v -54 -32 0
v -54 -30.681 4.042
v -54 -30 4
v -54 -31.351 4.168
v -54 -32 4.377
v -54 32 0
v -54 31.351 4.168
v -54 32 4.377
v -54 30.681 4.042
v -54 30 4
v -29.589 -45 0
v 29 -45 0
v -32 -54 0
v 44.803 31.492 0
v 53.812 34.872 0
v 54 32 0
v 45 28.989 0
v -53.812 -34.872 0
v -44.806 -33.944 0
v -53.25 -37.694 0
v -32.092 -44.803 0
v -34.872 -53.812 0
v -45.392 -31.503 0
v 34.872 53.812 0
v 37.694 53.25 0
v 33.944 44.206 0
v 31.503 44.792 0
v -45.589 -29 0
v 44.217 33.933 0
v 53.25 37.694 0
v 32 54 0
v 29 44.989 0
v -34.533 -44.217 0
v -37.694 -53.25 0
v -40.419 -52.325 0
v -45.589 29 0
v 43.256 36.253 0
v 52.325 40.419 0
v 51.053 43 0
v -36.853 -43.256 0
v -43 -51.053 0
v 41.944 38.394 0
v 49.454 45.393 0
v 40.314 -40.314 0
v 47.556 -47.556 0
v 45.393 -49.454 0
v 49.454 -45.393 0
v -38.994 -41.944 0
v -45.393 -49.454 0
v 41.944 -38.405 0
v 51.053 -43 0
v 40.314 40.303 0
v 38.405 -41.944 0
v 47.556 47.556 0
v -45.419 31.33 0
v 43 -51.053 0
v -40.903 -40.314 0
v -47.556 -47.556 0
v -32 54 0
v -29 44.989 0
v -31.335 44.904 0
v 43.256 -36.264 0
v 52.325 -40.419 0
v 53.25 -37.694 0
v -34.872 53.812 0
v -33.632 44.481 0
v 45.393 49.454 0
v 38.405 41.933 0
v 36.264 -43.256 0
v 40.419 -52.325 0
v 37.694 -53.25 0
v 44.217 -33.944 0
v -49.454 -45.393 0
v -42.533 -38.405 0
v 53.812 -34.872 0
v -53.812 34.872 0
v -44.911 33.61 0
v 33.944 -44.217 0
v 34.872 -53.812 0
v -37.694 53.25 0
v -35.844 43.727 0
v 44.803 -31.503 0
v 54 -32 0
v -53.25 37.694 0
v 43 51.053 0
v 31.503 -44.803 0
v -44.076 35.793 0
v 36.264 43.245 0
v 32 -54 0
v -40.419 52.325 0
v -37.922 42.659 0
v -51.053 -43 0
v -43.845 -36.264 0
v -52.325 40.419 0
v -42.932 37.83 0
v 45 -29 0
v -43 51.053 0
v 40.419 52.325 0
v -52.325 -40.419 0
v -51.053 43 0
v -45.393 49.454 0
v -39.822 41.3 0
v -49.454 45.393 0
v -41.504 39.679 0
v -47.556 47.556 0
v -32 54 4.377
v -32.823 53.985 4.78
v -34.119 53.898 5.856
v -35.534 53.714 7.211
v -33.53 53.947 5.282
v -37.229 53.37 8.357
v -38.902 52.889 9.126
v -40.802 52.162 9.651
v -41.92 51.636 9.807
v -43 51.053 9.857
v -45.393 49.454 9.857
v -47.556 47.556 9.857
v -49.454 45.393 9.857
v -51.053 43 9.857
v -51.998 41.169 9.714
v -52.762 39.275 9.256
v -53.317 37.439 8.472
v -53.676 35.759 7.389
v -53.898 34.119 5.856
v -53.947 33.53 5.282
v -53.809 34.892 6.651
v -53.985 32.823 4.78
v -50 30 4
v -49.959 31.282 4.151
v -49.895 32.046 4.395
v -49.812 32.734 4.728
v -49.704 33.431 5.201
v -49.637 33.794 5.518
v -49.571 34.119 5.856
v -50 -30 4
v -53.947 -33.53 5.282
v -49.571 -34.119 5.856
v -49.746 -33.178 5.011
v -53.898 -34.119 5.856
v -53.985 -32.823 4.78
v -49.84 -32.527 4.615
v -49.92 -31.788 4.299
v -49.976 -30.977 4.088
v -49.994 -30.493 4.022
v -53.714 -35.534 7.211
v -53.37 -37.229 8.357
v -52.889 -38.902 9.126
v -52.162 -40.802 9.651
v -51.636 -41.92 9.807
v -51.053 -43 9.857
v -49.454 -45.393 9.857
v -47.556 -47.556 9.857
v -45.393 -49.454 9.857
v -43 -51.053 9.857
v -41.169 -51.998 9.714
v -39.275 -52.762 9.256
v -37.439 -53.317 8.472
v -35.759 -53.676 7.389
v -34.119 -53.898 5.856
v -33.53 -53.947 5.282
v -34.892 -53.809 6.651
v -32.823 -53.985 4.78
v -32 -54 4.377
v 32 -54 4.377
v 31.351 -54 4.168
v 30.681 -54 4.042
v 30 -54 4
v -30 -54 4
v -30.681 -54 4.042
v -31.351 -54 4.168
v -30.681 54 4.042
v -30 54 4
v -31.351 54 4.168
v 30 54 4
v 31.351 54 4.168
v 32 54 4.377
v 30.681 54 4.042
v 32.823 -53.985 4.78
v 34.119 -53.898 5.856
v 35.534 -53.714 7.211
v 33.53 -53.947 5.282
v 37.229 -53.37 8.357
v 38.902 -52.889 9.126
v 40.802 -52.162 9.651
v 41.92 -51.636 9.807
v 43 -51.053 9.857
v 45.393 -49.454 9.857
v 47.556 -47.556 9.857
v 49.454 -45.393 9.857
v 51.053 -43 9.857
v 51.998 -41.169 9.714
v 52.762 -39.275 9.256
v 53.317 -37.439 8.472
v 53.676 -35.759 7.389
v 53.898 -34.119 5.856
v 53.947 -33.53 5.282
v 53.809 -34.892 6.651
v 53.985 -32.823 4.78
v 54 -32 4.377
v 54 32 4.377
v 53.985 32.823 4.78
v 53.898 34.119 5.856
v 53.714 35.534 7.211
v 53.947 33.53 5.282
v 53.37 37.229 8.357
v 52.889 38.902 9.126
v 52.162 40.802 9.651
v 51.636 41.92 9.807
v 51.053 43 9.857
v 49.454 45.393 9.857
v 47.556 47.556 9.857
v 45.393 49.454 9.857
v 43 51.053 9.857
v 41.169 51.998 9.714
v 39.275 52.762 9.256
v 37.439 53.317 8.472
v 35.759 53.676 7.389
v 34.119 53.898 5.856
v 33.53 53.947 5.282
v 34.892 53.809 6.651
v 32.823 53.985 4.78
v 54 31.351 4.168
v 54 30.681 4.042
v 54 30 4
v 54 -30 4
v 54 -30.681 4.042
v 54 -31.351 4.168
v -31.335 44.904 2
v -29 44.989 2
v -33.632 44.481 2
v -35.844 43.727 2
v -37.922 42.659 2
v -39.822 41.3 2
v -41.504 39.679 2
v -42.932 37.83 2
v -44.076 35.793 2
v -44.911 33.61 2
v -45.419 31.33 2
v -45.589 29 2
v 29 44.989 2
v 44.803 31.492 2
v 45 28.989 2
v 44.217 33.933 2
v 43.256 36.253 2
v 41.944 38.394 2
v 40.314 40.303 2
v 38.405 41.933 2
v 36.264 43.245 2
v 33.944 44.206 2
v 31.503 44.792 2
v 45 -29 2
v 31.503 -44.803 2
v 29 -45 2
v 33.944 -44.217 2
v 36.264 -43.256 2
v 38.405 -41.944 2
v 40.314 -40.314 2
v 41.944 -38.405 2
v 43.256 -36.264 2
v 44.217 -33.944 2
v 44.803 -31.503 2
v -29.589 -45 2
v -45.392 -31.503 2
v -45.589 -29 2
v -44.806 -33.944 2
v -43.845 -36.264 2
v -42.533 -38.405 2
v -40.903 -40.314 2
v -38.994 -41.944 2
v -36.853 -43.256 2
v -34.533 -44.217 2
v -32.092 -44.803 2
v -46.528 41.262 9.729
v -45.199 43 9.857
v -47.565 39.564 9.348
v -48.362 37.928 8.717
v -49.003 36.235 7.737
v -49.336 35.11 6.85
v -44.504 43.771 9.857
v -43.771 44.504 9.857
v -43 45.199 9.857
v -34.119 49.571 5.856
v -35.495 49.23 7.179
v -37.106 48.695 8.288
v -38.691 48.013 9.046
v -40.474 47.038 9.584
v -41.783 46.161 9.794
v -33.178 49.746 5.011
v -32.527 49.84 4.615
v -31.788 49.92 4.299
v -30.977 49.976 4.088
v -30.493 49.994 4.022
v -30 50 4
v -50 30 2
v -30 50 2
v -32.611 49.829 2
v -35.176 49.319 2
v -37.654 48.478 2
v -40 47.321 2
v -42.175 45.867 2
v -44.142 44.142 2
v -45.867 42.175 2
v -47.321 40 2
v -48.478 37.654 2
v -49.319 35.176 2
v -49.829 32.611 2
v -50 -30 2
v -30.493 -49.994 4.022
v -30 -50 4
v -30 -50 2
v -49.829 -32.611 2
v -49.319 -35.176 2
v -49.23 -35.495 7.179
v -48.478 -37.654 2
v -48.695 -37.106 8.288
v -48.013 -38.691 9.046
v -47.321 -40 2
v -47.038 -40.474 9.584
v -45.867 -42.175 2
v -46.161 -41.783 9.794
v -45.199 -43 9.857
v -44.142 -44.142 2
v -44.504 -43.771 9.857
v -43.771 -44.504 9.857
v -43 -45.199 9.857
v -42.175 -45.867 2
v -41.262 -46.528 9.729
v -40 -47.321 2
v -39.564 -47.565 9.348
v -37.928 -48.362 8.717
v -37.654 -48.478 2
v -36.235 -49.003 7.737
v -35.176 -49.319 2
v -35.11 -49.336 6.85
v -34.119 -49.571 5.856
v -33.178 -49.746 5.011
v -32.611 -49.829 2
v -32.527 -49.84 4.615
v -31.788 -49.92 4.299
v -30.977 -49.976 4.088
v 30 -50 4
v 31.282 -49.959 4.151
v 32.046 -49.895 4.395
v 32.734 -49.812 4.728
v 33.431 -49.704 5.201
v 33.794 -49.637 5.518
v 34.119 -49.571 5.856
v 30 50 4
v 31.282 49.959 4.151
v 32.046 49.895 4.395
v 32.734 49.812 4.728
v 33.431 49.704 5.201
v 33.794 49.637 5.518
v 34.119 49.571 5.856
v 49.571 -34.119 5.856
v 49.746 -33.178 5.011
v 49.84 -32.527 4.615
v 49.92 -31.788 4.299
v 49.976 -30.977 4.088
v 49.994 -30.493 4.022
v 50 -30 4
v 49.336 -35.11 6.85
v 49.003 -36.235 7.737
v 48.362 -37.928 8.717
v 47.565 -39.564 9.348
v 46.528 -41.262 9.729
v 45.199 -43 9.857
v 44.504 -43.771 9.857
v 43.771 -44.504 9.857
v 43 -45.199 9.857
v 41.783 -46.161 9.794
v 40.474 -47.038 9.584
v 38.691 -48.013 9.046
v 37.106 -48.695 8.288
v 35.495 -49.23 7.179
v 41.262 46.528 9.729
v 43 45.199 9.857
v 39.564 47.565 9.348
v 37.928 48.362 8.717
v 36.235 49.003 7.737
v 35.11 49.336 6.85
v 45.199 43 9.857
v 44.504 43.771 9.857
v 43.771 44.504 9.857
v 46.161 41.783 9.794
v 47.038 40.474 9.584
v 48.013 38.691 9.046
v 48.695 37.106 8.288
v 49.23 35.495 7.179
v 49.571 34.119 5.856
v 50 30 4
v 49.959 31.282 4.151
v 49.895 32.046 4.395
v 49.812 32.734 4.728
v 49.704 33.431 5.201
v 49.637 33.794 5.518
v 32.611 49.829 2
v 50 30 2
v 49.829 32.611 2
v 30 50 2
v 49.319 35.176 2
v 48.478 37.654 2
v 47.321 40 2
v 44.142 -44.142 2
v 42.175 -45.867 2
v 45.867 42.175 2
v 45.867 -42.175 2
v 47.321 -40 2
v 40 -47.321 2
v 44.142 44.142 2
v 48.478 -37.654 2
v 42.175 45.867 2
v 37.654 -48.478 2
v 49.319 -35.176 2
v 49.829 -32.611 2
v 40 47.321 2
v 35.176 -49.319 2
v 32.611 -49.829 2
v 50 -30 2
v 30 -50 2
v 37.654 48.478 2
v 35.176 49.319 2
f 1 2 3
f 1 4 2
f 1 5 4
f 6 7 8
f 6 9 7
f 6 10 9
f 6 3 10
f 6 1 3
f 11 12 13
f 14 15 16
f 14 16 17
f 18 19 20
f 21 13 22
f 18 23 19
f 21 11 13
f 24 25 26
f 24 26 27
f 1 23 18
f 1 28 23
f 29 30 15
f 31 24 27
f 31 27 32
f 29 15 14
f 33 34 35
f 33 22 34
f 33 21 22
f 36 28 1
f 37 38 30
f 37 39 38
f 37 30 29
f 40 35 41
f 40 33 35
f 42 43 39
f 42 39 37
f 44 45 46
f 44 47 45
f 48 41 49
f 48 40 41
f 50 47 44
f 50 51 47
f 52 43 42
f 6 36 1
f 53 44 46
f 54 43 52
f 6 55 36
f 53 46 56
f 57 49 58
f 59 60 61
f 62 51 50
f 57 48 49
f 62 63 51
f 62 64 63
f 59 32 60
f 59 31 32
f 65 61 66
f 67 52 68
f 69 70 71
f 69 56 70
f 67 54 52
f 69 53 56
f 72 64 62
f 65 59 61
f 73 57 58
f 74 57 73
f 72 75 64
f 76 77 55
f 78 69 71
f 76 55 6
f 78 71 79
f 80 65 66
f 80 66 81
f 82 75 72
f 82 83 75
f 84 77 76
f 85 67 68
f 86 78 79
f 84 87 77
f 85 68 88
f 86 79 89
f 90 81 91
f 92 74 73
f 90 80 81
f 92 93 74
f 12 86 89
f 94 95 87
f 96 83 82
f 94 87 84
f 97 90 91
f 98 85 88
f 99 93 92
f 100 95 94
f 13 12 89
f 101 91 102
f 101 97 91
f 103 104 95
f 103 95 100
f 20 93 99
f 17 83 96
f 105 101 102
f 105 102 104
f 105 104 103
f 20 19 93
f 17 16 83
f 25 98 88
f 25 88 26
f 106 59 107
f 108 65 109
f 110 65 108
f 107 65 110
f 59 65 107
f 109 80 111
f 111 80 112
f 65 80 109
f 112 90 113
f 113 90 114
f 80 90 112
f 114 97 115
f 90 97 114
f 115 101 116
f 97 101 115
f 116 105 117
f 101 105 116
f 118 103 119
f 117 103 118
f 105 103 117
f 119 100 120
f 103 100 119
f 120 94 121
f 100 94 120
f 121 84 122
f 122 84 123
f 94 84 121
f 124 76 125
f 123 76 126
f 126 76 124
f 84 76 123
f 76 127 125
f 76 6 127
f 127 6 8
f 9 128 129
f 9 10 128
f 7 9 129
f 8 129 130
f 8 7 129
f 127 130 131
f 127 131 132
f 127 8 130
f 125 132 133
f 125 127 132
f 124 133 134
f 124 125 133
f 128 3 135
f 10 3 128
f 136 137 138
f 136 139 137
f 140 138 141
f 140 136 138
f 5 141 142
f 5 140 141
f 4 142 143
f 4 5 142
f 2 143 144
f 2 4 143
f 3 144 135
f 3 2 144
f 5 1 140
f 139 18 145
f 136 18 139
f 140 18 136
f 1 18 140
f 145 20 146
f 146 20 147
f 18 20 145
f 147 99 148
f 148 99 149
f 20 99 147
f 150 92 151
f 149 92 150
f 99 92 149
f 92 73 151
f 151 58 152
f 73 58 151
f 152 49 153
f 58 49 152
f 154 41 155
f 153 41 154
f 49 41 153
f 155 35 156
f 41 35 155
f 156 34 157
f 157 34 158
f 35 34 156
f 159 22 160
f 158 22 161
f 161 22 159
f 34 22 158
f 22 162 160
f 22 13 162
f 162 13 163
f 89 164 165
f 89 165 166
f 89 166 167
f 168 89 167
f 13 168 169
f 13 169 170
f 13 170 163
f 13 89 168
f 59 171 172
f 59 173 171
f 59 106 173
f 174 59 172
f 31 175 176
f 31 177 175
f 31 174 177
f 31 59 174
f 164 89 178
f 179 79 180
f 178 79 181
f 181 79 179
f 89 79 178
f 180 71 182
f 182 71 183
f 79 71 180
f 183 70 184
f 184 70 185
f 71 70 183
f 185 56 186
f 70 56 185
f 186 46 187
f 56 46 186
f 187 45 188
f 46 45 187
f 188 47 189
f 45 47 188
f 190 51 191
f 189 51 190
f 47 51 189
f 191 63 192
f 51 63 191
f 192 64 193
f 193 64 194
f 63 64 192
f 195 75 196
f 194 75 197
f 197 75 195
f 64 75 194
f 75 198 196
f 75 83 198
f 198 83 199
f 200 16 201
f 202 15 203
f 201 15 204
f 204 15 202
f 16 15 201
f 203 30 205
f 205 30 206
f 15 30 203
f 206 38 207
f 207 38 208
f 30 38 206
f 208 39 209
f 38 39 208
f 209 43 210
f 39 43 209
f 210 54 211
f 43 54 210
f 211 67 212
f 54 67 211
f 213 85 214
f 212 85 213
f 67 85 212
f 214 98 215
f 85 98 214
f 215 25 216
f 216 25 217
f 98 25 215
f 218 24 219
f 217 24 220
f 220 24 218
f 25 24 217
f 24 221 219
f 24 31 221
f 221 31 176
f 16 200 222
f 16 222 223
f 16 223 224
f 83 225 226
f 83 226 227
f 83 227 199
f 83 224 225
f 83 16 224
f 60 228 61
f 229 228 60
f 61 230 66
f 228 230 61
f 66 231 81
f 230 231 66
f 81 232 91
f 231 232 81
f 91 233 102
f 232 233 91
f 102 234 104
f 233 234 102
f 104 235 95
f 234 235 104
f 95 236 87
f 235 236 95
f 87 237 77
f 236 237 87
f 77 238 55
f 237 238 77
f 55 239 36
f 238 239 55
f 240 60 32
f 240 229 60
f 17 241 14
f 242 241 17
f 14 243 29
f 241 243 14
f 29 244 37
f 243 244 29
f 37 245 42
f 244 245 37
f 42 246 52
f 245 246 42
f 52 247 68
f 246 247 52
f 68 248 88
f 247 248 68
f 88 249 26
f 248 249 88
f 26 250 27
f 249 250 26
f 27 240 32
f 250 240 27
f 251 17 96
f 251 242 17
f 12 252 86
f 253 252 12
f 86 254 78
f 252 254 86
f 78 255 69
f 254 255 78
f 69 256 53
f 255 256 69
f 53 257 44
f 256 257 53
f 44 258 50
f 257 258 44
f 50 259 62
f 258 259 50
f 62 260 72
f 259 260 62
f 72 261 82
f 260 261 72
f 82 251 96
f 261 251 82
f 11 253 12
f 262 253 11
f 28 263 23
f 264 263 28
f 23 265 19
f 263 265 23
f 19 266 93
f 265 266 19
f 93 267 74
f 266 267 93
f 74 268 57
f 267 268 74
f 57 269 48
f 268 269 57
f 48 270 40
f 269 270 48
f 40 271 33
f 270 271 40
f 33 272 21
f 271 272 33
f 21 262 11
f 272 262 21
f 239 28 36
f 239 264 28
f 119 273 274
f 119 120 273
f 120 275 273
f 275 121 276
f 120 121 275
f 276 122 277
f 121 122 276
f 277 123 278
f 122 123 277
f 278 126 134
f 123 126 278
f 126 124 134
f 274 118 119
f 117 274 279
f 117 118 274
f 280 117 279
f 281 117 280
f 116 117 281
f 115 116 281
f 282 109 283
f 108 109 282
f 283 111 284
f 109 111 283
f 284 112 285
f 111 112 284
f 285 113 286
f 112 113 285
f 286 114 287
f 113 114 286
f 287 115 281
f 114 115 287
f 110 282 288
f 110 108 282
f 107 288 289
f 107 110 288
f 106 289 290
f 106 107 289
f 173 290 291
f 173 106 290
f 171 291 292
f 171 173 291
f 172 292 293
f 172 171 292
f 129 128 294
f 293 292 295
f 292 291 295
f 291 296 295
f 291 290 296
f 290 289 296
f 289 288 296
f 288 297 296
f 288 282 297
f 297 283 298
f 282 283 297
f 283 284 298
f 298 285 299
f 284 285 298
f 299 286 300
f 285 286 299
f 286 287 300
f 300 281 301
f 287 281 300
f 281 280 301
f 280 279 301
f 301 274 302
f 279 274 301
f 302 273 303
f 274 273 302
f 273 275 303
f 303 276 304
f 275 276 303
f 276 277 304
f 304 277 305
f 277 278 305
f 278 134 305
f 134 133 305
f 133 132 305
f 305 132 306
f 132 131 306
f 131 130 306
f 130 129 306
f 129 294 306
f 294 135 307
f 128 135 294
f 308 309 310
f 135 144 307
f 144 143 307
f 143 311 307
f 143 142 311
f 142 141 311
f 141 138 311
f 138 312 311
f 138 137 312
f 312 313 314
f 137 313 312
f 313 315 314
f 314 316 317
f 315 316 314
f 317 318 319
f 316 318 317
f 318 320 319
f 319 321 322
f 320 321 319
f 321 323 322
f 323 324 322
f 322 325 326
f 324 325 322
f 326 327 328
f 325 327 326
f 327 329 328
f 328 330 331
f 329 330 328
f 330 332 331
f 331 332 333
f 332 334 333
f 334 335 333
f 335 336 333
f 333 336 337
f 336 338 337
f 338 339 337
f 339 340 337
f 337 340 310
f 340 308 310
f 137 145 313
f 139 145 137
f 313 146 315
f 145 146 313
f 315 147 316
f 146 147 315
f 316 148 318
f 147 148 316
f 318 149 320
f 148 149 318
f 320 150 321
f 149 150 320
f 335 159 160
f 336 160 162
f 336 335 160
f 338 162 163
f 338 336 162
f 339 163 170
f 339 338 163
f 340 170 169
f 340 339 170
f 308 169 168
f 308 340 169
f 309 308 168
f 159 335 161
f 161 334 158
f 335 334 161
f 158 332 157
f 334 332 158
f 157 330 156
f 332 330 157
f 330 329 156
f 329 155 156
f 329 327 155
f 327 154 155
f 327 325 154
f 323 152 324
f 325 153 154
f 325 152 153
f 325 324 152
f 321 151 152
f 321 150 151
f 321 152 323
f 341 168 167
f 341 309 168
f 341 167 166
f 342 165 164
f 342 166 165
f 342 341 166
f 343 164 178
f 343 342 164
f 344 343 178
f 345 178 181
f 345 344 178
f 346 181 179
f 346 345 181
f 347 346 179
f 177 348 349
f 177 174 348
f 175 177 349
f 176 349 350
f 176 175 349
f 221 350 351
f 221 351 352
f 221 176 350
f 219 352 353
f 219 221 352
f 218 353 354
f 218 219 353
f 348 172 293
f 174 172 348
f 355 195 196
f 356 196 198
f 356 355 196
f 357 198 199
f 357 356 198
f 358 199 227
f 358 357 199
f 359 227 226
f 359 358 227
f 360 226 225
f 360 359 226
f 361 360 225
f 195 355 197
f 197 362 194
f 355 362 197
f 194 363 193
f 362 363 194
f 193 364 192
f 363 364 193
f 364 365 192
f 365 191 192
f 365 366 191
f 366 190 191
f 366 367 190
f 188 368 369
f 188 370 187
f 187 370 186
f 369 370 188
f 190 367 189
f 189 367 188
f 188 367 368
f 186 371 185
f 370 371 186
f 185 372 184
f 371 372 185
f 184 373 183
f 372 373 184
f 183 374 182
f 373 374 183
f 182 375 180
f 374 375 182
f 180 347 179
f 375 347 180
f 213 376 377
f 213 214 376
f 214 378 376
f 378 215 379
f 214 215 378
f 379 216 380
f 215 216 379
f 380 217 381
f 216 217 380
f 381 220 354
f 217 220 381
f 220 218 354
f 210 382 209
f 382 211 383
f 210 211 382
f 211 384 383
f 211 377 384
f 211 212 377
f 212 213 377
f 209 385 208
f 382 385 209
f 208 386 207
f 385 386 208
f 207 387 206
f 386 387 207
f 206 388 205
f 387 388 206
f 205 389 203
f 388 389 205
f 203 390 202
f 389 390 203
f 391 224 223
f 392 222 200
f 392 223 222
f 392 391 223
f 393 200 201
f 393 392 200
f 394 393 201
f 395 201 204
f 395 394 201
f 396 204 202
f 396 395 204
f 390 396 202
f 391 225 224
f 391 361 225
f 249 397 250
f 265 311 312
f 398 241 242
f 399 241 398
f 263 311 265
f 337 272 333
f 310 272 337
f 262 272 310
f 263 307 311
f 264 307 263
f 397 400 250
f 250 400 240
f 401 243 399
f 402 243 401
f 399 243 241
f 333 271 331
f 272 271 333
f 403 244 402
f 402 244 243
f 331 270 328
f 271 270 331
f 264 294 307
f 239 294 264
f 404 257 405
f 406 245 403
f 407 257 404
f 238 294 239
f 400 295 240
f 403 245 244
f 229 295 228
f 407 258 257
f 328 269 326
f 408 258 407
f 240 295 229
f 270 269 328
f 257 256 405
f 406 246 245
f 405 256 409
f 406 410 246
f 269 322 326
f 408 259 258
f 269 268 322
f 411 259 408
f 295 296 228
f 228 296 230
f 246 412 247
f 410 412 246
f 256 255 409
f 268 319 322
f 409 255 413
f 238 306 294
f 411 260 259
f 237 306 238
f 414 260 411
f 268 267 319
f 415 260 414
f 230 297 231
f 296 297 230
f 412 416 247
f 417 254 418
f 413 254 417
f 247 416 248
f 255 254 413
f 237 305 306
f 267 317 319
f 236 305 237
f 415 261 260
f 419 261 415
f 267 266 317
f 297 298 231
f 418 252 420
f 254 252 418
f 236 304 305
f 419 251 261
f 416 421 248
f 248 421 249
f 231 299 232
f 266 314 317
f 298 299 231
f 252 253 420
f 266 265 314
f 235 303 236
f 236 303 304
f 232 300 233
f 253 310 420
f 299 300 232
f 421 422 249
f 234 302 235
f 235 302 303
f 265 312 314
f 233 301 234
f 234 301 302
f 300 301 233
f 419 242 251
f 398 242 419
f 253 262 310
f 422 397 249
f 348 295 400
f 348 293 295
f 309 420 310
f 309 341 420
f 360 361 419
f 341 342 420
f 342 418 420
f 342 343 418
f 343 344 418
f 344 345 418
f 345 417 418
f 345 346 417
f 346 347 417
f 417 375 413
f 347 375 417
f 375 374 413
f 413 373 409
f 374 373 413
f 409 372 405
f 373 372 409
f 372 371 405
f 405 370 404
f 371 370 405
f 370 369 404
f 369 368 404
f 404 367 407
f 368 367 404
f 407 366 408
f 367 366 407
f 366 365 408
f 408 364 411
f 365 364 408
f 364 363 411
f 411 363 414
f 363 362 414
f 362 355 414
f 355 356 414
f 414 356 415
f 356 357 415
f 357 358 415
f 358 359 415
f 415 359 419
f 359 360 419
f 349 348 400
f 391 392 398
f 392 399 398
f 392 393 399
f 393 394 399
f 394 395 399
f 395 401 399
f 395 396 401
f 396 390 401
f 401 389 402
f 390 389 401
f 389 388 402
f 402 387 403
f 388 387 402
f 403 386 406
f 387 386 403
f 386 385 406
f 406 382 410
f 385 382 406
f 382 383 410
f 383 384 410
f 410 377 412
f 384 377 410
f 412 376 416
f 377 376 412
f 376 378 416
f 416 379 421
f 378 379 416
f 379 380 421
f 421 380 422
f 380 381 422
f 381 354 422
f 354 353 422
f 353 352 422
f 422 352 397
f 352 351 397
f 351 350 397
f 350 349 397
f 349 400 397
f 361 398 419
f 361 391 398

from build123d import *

# Parameters (mm, degrees)
PAD002_DEPTH            = 56.5
BODY002_PLACEMENT_ANGLE = 90
PAD001_DEPTH            = 56.5
PAD_DEPTH               = 30
POCKET_DEPTH            = 28
POCKET001_DEPTH         = 2.001


with BuildPart() as corte_x:
    # Sketch004 → Pad002 (new body, symmetric)
    with BuildSketch(Plane.XZ):
        with BuildLine():
            Line((-58, 39.856555), (58, 39.856555))
            Line((58, 39.856555), (58, 9.856555))
            Line((58, 9.856555), (43, 9.856555))
            ThreePointArc((43, 9.856555), (38.129956, 8.810207), (34.119481, 5.855844))
            ThreePointArc((30, 4), (32.259108, 4.485378), (34.119481, 5.855844))
            Line((-30, 4), (30, 4))
            ThreePointArc((-34.119481, 5.855844), (-32.259108, 4.485378), (-30, 4))
            ThreePointArc((-34.119481, 5.855844), (-38.129956, 8.810207), (-43, 9.856555))
            Line((-58, 9.856555), (-43, 9.856555))
            Line((-58, 39.856555), (-58, 9.856555))
        make_face()
    extrude(amount=PAD002_DEPTH, both=True)


with BuildPart() as corte_x_1:
    # Body002 placement: moved
    add(corte_x.part.rotate(Axis((0, 0, 0), (0, 0, 1)), BODY002_PLACEMENT_ANGLE))


with BuildPart() as fusion:
    # Sketch003 → Pad001 (new body, symmetric)
    with BuildSketch(Plane.XZ):
        with BuildLine():
            Line((-58, 39.856555), (58, 39.856555))
            Line((58, 39.856555), (58, 9.856555))
            Line((58, 9.856555), (43, 9.856555))
            ThreePointArc((43, 9.856555), (38.129956, 8.810207), (34.119481, 5.855844))
            ThreePointArc((30, 4), (32.259108, 4.485378), (34.119481, 5.855844))
            Line((-30, 4), (30, 4))
            ThreePointArc((-34.119481, 5.855844), (-32.259108, 4.485378), (-30, 4))
            ThreePointArc((-34.119481, 5.855844), (-38.129956, 8.810207), (-43, 9.856555))
            Line((-58, 9.856555), (-43, 9.856555))
            Line((-58, 39.856555), (-58, 9.856555))
        make_face()
    extrude(amount=PAD001_DEPTH, both=True)

    # Fusion: union Corte X
    add(corte_x_1.part)


with BuildPart() as cut:
    # Sketch → Pad (new body)
    with BuildSketch(Plane.XY):
        with BuildLine():
            Line((-32, 54), (32, 54))
            ThreePointArc((54, 32), (47.556349, 47.556349), (32, 54))
            Line((54, 32), (54, -32))
            ThreePointArc((32, -54), (47.556349, -47.556349), (54, -32))
            Line((32, -54), (-32, -54))
            ThreePointArc((-54, -32), (-47.556349, -47.556349), (-32, -54))
            Line((-54, -32), (-54, 32))
            ThreePointArc((-32, 54), (-47.556349, 47.556349), (-54, 32))
        make_face()
    extrude(amount=PAD_DEPTH)

    # Sketch001 (on Face10 of Pad) → Pocket (cut)
    with BuildSketch(Plane.XY.offset(30)):
        with BuildLine():
            Line((-30, 50), (30, 50))
            ThreePointArc((50, 30), (44.142136, 44.142136), (30, 50))
            Line((50, 30), (50, -30))
            ThreePointArc((30, -50), (44.142136, -44.142136), (50, -30))
            Line((30, -50), (-30, -50))
            ThreePointArc((-50, -30), (-44.142136, -44.142136), (-30, -50))
            Line((-50, -30), (-50, 30))
            ThreePointArc((-30, 50), (-44.142136, 44.142136), (-50, 30))
        make_face()
    extrude(amount=-POCKET_DEPTH, mode=Mode.SUBTRACT)

    # Sketch002 (on Face19 of Pocket) → Pocket001 (cut, through all)
    with BuildSketch(Plane.XY.offset(2)):
        with BuildLine():
            Line((-29, 44.989147), (29, 44.989147))
            ThreePointArc((45, 28.989147), (40.313708, 40.302855), (29, 44.989147))
            Line((45, 28.989147), (45, -29))
            ThreePointArc((29, -45), (40.313708, -40.313708), (45, -29))
            Line((29, -45), (-29.589223, -45))
            ThreePointArc((-45.589223, -29), (-40.902931, -40.313708), (-29.589223, -45))
            Line((-45.589223, -29), (-45.589223, 29))
            ThreePointArc((-29, 44.989147), (-40.692655, 40.520147), (-45.589223, 29))
        make_face()
    extrude(amount=-POCKET001_DEPTH, mode=Mode.SUBTRACT)

    # Cut: cut Fusion
    add(fusion.part, mode=Mode.SUBTRACT)


solid = cut.part
